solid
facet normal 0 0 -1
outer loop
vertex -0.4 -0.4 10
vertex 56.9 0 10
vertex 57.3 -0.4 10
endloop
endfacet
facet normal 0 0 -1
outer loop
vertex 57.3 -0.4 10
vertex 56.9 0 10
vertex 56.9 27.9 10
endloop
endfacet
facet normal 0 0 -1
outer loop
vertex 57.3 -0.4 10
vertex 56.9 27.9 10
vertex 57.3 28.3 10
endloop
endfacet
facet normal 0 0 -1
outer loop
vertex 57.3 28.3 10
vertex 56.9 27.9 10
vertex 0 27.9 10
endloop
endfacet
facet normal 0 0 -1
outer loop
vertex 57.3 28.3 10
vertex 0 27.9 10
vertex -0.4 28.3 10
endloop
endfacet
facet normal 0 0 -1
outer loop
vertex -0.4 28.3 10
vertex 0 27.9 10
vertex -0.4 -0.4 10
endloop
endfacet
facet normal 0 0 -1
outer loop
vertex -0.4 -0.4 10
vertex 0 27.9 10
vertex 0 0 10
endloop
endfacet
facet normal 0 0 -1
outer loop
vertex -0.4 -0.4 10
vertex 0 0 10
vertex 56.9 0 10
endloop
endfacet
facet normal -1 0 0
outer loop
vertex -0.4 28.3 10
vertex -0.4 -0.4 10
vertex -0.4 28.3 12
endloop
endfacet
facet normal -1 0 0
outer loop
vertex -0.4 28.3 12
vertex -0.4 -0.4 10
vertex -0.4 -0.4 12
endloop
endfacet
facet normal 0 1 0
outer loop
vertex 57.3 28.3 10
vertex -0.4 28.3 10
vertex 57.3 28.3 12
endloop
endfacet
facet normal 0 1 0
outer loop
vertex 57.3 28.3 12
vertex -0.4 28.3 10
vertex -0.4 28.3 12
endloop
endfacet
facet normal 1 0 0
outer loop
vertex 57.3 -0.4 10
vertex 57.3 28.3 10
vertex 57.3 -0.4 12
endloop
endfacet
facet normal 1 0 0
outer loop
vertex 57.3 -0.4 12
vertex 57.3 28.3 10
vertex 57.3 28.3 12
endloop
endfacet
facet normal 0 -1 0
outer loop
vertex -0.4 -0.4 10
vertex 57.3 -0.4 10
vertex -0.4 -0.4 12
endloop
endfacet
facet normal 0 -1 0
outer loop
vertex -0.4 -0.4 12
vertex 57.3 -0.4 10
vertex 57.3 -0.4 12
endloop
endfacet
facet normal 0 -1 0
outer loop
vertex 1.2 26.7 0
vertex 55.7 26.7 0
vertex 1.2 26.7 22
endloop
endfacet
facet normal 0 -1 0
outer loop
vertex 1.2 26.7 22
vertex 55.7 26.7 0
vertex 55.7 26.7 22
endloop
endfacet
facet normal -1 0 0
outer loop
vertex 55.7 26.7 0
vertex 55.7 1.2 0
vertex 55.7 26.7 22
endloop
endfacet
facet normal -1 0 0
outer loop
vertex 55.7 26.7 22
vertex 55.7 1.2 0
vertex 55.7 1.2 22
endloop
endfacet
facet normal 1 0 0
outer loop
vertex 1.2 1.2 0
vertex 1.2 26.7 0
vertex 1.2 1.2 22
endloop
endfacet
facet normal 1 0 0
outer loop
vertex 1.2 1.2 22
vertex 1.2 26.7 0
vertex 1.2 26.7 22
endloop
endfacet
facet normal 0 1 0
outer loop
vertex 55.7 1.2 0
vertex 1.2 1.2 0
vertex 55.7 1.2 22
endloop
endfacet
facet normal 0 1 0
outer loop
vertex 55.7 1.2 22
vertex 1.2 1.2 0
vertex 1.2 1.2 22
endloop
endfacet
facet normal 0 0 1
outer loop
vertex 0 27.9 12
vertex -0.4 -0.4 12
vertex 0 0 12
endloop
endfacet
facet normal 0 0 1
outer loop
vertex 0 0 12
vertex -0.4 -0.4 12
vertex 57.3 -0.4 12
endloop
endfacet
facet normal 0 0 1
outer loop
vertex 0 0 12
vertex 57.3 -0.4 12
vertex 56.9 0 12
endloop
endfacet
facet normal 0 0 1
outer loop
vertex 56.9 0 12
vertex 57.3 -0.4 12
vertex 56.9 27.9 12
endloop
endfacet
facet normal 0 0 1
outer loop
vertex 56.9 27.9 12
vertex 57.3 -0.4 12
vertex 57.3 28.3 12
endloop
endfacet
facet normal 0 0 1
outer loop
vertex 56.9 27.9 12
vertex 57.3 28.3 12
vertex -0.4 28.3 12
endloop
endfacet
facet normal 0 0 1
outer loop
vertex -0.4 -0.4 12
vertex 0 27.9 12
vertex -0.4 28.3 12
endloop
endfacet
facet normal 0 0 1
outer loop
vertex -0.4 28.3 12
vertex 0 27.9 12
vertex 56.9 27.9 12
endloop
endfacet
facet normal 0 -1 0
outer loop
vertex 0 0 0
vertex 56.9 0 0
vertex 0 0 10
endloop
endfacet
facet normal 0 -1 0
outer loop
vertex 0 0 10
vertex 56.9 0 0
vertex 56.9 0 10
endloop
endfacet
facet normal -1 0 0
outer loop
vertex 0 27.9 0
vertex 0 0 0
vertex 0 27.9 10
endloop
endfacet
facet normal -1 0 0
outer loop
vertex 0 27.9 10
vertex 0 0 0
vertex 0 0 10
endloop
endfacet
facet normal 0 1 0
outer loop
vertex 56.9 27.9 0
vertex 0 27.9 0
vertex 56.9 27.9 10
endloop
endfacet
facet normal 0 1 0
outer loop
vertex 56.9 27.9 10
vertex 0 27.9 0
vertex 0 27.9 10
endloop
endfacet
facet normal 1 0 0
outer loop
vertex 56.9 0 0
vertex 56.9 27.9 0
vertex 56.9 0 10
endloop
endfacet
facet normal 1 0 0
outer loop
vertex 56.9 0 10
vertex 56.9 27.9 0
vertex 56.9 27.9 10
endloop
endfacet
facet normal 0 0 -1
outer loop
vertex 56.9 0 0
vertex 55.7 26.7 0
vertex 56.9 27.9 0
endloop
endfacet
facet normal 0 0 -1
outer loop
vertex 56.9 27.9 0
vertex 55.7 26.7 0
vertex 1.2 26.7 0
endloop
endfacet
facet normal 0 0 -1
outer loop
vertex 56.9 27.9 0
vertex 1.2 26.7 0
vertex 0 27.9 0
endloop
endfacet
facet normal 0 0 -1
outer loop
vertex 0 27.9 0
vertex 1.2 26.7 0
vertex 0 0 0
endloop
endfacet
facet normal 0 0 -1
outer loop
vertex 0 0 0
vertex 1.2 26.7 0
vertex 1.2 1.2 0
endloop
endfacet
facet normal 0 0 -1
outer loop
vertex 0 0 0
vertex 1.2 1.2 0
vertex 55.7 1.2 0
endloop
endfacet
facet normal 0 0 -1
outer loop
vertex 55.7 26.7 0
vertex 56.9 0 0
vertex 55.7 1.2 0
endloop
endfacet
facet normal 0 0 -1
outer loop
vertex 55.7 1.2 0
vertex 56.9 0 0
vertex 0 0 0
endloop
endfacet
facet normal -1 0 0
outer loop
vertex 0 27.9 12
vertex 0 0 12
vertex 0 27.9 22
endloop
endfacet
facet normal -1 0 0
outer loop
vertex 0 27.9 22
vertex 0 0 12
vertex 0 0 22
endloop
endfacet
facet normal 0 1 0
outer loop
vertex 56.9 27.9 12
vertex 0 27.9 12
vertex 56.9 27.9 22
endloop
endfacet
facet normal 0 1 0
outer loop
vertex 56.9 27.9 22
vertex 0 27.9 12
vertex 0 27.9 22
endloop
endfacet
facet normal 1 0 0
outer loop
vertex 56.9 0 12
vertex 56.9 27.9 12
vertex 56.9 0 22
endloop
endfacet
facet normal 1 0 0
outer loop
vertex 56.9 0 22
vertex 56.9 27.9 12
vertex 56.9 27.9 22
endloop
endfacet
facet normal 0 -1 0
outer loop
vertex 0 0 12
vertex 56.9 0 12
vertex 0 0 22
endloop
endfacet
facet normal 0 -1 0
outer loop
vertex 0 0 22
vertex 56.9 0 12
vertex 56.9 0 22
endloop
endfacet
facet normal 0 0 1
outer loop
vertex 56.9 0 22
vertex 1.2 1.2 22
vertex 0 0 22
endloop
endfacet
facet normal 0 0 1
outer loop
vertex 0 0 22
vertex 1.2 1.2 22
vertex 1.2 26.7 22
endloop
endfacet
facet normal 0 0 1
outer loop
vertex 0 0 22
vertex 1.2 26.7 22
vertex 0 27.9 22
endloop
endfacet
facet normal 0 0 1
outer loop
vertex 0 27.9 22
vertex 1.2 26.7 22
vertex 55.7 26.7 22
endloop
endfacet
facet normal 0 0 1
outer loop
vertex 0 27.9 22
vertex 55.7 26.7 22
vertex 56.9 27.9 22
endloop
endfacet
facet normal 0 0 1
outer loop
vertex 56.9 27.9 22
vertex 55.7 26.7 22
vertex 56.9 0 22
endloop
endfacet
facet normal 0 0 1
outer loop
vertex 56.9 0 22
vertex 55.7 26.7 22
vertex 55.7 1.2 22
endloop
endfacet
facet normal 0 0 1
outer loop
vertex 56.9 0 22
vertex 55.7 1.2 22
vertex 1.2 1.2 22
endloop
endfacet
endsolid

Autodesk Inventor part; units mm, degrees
ref_plane "YZ Plane" through (0, 0, 0) normal (1, 0, 0) x (0, 1, 0)
ref_plane "XZ Plane" through (0, 0, 0) normal (0, 1, 0) x (-1, 0, 0)
ref_plane "XY Plane" through (0, 0, 0) normal (0, 0, 1) x (1, 0, 0)
sketch "Sketch1" plane through (0, 0, 0) normal (0, 0, 1) x (1, 0, 0)
  line L0 (0, 0) -> (56.9, 0)
  line L1 (56.9, 0) -> (56.9, 27.9)
  line L2 (56.9, 27.9) -> (0, 27.9)
  line L3 (0, 27.9) -> (0, 0)
  line L4 (1.2, 26.7) -> (55.7, 26.7)
  line L5 (55.7, 26.7) -> (55.7, 1.2)
  line L6 (55.7, 1.2) -> (1.2, 1.2)
  line L7 (1.2, 1.2) -> (1.2, 26.7)
  dimension "d0" = 56.9
  dimension "d1" = 27.9
  dimension "d2" = 1.2
  dimension "d3" = 1.2
  dimension "d4" = 1.2
  dimension "d5" = 1.2
extrude "Extrusion1" add sketch "Sketch1" along normal blind 10
sketch "Sketch3" plane through (0, 0, 10) normal (0, 0, 1) x (1, 0, 0)
  line L0 (1.2, 26.7) -> (55.7, 26.7) projected
  line L1 (55.7, 26.7) -> (55.7, 1.2) projected
  line L2 (1.2, 26.7) -> (55.7, 26.7)
  line L3 (55.7, 26.7) -> (55.7, 1.2)
  line L4 (55.7, 1.2) -> (1.2, 1.2)
  line L5 (1.2, 1.2) -> (1.2, 26.7)
  line L6 (-0.4, 28.3) -> (57.3, 28.3)
  line L7 (57.3, 28.3) -> (57.3, -0.4)
  line L8 (57.3, -0.4) -> (-0.4, -0.4)
  line L9 (-0.4, -0.4) -> (-0.4, 28.3)
  point P0 (0, 0)
  dimension "d8" = 1.6
  dimension "d9" = 1.6
  dimension "d10" = 1.6
  dimension "d11" = 1.6
extrude "Extrusion2" add sketch "Sketch3" along normal blind 2
sketch "Sketch4" plane through (0, 0, 12) normal (0, 0, 1) x (1, 0, 0)
  line L0 (1.2, 26.7) -> (55.7, 26.7) projected
  line L1 (55.7, 26.7) -> (55.7, 1.2) projected
  line L2 (1.2, 26.7) -> (55.7, 26.7)
  line L3 (55.7, 26.7) -> (55.7, 1.2)
  line L4 (55.7, 1.2) -> (1.2, 1.2)
  line L5 (1.2, 1.2) -> (1.2, 26.7)
  line L6 (56.9, 27.9) -> (0, 27.9) projected
  line L7 (56.9, 0) -> (56.9, 27.9) projected
  line L8 (0, 27.9) -> (56.9, 27.9)
  line L9 (56.9, 27.9) -> (56.9, 0)
  line L10 (56.9, 0) -> (0, 0)
  line L11 (0, 0) -> (0, 27.9)
extrude "Extrusion3" add sketch "Sketch4" along normal blind 10
properties part number "Connector"
